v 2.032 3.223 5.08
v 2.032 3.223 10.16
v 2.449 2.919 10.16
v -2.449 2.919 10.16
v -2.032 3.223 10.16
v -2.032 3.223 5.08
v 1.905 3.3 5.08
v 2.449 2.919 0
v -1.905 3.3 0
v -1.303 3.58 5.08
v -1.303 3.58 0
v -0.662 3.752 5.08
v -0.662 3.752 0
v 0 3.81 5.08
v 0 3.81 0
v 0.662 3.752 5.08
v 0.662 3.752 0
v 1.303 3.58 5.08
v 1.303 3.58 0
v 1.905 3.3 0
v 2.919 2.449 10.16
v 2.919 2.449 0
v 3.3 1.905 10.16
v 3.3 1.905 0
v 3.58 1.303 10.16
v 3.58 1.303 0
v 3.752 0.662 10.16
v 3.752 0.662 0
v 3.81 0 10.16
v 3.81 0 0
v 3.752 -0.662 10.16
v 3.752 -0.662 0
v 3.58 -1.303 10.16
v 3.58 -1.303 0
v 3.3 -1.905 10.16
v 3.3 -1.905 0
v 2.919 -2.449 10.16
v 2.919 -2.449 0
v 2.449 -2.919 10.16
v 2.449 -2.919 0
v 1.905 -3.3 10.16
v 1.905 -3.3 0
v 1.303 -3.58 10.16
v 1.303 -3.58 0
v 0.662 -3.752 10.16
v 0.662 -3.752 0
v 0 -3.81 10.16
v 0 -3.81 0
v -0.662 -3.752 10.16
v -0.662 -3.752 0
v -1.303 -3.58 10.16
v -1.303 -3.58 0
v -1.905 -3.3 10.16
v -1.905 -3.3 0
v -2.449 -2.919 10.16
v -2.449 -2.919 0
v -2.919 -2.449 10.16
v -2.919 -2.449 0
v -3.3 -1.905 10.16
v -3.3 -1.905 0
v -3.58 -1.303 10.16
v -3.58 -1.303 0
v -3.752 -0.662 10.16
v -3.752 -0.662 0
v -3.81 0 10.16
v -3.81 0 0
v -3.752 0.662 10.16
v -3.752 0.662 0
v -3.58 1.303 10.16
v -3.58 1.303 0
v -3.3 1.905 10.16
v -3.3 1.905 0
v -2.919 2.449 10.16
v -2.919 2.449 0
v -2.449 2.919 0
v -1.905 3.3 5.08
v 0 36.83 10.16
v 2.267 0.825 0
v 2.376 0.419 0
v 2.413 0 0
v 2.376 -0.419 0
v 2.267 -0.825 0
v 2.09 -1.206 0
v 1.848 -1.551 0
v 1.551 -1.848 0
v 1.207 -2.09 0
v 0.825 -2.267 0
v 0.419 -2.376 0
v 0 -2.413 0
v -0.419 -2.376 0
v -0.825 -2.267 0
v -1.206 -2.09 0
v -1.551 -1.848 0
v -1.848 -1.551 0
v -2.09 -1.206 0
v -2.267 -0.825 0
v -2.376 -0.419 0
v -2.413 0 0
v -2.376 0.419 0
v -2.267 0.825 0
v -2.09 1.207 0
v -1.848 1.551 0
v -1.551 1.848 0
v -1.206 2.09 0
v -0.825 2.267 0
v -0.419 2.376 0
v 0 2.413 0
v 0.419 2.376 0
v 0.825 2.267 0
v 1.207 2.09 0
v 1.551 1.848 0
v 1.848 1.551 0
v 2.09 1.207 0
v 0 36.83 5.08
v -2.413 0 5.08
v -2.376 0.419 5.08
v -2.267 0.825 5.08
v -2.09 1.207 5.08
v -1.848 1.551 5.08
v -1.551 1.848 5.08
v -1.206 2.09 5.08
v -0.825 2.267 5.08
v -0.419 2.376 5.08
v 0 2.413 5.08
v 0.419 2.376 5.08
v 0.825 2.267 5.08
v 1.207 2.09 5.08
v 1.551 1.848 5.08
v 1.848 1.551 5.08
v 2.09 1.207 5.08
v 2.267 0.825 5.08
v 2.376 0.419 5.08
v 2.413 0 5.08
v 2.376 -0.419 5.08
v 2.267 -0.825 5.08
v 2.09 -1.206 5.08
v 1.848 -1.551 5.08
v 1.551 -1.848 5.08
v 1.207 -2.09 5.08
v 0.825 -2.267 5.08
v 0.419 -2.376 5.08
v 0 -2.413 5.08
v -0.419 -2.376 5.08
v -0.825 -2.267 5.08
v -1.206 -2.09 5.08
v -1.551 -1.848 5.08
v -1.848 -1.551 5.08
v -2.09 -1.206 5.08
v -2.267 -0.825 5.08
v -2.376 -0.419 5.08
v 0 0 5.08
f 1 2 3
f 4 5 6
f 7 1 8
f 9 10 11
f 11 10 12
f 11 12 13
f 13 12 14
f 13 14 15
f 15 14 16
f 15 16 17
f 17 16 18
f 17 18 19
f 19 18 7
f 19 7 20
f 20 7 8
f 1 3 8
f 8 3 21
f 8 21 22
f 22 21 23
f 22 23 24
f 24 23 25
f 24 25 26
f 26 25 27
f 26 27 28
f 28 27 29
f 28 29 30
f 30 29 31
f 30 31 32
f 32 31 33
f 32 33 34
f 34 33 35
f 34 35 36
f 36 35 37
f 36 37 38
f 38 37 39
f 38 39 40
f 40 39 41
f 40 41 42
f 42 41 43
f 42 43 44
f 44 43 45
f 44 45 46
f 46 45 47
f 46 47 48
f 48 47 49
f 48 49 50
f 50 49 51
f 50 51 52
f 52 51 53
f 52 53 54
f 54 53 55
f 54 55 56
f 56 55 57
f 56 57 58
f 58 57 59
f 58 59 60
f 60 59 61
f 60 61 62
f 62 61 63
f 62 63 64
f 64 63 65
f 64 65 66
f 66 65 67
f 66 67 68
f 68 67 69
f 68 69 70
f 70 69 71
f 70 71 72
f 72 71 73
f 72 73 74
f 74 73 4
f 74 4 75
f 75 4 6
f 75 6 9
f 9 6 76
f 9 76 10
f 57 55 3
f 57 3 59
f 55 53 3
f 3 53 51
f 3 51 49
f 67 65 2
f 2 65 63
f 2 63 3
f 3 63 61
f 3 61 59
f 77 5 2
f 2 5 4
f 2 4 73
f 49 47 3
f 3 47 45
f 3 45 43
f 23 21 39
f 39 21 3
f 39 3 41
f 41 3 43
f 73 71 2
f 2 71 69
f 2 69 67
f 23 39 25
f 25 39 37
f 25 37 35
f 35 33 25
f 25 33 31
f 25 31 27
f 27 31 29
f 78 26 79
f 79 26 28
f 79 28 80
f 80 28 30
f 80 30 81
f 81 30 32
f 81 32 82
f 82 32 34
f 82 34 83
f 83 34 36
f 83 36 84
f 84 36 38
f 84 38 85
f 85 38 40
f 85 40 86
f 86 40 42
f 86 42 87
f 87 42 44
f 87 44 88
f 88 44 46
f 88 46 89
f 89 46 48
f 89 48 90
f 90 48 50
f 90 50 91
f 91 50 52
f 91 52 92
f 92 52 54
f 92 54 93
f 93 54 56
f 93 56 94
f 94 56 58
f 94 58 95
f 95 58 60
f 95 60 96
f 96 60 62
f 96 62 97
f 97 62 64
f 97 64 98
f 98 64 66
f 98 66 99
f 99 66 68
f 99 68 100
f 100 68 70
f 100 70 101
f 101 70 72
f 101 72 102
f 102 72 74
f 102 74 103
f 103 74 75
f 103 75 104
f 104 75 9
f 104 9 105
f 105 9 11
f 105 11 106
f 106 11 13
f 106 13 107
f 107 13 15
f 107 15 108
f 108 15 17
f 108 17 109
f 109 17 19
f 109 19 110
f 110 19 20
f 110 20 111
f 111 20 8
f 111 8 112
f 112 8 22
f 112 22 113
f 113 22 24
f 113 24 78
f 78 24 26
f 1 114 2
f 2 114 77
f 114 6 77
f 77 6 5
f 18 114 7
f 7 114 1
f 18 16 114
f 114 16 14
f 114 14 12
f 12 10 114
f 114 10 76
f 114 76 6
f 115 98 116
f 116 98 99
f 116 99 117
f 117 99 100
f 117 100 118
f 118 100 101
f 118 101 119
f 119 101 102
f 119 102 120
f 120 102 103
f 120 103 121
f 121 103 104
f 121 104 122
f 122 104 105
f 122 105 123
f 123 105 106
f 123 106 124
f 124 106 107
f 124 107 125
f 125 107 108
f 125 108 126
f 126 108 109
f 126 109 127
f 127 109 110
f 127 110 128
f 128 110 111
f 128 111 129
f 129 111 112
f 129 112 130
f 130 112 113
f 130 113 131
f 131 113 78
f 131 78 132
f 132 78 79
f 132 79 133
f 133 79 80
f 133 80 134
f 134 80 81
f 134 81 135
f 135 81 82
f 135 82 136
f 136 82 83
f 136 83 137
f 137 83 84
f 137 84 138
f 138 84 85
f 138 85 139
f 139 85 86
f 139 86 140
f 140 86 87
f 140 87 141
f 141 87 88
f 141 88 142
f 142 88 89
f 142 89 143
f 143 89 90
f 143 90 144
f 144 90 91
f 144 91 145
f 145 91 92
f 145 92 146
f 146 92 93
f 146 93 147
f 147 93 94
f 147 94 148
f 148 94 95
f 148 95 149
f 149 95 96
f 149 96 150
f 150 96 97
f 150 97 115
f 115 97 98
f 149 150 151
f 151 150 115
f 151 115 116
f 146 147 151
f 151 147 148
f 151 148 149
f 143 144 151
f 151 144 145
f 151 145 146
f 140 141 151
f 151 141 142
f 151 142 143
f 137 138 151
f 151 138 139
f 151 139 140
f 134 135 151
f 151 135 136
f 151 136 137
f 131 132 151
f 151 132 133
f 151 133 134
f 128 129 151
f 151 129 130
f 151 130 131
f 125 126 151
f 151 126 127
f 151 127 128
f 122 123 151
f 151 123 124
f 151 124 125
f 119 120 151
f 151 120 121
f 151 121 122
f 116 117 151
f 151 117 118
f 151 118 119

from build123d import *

# Parameters (mm, degrees)
SKETCH1_R           = 3.81
BOSS_EXTRUDE2_DEPTH = 10.16
BOSS_EXTRUDE3_DEPTH = 5.08
SKETCH5_R           = 2.413
CUT_EXTRUDE1_DEPTH  = 5.08


with BuildPart() as part:
    # Sketch1 → Boss-Extrude2 (new body)
    with BuildSketch(Plane.XY):
        Circle(SKETCH1_R)
    extrude(amount=BOSS_EXTRUDE2_DEPTH)

    # Sketch4 → Boss-Extrude3 (add)
    with BuildSketch(Plane.XY.offset(10.16)):
        Polygon((-2.032318753, 3.222697703), (2.032318753, 3.222697703), (0, 36.83), align=None)
    extrude(amount=-BOSS_EXTRUDE3_DEPTH)

    # Sketch5 → Cut-Extrude1 (cut)
    with BuildSketch(Plane(origin=(0, 0, 0), x_dir=(-1, 0, 0), z_dir=(0, 0, -1))):
        Circle(SKETCH5_R)
    extrude(amount=-CUT_EXTRUDE1_DEPTH, mode=Mode.SUBTRACT)


solid = part.part
